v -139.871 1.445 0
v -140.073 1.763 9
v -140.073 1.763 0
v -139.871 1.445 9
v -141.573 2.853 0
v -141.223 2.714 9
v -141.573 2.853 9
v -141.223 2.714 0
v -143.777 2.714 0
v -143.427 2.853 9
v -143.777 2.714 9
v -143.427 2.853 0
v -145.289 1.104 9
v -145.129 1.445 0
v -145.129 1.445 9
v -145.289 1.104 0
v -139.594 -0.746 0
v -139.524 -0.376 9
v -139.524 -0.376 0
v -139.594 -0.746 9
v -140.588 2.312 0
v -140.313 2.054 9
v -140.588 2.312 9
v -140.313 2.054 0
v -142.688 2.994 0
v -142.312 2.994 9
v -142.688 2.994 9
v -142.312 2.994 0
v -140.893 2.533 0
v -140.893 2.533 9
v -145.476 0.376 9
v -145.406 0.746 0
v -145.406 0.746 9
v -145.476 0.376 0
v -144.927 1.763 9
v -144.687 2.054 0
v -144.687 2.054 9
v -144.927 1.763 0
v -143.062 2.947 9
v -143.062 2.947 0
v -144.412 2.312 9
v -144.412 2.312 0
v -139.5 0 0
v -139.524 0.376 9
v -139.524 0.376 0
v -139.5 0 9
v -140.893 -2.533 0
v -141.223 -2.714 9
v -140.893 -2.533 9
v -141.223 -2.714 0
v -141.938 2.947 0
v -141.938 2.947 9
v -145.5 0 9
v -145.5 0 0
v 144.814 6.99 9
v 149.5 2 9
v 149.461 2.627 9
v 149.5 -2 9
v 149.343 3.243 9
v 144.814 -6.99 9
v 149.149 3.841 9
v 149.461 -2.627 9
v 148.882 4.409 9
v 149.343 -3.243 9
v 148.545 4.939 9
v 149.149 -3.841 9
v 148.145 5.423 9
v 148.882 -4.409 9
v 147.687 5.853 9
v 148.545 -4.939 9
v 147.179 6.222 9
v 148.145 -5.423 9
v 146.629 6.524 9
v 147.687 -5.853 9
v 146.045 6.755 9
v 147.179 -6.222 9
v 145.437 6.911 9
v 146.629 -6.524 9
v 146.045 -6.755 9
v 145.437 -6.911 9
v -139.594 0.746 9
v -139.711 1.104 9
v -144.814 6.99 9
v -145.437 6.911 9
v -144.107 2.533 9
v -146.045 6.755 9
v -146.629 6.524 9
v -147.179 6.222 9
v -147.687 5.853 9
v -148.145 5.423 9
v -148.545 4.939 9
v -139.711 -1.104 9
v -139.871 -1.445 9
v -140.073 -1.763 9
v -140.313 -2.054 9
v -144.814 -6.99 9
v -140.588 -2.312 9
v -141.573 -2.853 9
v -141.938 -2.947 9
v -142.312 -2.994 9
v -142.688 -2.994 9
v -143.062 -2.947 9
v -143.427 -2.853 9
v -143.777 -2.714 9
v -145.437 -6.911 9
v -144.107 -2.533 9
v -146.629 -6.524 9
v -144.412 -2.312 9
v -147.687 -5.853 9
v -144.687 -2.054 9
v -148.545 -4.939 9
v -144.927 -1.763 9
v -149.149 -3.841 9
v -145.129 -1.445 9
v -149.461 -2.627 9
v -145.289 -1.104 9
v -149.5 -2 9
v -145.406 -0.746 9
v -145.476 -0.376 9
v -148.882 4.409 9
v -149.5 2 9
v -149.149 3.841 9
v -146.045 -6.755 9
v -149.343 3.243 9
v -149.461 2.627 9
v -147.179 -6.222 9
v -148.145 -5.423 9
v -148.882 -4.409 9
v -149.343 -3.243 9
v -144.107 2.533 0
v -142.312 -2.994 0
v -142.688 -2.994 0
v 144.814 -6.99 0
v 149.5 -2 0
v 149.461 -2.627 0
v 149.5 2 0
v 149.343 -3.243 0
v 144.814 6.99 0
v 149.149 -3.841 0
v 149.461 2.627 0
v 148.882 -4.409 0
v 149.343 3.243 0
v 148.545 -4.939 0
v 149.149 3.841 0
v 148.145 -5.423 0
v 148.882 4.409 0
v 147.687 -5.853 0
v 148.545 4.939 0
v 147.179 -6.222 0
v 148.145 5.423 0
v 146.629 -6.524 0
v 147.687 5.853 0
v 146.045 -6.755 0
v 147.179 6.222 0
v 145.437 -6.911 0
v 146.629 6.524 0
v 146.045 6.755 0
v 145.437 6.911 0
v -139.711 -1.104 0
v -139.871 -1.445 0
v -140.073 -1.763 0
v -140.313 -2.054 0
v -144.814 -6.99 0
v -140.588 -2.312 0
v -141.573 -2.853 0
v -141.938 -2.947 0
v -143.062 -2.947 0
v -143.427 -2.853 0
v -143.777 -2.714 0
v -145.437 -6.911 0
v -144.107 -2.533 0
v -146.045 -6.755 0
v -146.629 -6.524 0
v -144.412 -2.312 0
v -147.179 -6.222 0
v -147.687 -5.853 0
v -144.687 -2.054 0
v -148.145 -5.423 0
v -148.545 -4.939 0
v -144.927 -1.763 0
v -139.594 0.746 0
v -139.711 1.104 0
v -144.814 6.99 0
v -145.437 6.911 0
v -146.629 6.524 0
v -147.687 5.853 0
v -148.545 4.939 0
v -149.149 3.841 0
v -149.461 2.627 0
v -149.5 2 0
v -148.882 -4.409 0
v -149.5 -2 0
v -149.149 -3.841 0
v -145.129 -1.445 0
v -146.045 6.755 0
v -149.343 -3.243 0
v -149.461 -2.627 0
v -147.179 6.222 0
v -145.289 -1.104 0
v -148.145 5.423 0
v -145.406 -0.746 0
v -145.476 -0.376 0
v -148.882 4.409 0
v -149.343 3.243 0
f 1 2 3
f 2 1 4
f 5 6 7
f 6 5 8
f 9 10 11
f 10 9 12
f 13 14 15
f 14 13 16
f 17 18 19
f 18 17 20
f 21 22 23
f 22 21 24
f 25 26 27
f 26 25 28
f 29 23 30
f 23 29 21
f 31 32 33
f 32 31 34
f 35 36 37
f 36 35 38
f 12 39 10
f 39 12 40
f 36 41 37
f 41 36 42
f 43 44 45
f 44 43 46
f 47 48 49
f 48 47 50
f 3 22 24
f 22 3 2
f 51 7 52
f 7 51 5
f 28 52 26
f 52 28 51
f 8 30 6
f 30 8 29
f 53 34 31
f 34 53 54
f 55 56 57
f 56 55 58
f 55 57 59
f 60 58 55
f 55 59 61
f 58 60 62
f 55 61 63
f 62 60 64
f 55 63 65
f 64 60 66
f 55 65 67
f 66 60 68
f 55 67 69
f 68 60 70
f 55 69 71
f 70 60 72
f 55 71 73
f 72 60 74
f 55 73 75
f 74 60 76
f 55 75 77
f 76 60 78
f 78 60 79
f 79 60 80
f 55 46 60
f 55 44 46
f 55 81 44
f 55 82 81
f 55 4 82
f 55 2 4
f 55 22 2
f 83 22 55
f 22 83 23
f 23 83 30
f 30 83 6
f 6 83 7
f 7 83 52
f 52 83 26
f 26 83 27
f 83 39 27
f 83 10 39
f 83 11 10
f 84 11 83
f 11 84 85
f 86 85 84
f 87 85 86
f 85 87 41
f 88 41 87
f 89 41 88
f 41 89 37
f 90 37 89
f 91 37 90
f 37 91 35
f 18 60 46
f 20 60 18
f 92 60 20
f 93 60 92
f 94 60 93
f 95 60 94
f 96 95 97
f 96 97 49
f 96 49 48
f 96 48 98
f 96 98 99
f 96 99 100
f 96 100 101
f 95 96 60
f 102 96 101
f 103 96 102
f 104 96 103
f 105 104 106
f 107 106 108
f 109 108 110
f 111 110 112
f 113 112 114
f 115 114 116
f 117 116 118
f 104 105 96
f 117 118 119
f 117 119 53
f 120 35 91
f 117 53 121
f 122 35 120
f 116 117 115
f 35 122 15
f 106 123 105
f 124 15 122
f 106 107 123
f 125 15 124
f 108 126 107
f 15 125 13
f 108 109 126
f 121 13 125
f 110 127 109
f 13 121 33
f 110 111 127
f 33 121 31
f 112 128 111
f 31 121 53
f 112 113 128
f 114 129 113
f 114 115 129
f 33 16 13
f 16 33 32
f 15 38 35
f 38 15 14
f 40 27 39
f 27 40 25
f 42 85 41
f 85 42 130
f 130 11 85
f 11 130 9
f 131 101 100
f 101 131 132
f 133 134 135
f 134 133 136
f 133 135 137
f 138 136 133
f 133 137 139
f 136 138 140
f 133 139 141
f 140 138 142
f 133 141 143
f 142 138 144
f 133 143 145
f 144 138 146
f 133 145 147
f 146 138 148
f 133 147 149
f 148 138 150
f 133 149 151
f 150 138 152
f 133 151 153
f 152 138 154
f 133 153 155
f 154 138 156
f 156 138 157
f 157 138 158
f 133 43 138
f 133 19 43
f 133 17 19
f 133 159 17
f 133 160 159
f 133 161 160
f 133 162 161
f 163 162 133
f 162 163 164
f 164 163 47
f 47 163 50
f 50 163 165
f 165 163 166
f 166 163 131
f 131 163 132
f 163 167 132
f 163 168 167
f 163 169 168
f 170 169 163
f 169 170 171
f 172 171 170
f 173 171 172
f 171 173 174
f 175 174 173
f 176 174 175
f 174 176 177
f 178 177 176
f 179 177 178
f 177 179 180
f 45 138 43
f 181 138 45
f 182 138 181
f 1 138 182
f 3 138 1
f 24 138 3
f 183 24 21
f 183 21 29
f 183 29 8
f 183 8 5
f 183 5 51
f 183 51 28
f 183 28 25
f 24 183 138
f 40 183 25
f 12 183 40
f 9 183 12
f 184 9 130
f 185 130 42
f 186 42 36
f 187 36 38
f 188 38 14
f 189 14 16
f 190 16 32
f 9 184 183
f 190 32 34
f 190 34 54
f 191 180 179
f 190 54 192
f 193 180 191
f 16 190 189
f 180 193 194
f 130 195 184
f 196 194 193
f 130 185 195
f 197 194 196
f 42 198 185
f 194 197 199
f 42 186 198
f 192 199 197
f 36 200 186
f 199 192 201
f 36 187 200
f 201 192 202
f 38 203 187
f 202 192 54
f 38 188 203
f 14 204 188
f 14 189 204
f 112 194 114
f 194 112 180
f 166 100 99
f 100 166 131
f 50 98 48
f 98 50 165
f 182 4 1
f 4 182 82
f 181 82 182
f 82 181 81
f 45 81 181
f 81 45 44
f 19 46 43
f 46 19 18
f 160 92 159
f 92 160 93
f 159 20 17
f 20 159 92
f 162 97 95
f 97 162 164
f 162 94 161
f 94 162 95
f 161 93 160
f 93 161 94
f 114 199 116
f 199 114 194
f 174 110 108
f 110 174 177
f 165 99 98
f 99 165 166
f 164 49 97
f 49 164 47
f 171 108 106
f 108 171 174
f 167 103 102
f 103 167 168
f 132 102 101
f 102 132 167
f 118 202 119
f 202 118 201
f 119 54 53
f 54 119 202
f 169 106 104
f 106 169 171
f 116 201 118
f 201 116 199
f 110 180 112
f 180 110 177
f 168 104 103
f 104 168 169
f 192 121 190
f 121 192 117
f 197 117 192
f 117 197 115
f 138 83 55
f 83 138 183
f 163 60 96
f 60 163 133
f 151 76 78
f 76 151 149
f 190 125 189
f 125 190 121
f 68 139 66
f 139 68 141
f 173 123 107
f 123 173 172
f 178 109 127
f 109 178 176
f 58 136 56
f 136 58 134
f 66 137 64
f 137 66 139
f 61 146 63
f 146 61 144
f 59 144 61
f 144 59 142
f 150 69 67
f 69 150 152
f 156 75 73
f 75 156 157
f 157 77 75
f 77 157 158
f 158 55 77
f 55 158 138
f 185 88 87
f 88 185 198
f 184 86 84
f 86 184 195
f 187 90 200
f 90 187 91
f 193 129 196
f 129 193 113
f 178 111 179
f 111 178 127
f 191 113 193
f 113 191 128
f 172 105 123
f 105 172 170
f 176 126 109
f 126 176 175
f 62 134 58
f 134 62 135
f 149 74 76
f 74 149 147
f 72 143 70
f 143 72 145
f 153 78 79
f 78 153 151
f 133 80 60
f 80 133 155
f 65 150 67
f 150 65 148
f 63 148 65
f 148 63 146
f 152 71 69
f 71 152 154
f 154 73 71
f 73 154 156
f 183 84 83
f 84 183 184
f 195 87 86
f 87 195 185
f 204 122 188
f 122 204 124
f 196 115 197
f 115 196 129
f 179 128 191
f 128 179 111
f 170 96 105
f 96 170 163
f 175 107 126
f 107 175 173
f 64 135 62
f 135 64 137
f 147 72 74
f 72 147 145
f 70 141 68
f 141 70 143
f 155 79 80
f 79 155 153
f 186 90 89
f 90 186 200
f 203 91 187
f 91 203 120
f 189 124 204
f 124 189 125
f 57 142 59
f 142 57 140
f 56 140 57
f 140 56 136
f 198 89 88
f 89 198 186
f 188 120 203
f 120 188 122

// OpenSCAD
$fn = 50;


difference() {
	union() {
		hull() {
			translate(v = [-144.5000000000, 2.0000000000, 0]) {
				cylinder(h = 9, r = 5);
			}
			translate(v = [144.5000000000, 2.0000000000, 0]) {
				cylinder(h = 9, r = 5);
			}
			translate(v = [-144.5000000000, -2.0000000000, 0]) {
				cylinder(h = 9, r = 5);
			}
			translate(v = [144.5000000000, -2.0000000000, 0]) {
				cylinder(h = 9, r = 5);
			}
		}
	}
	union() {
		translate(v = [-142.5000000000, 0.0000000000, 0]) {
			cylinder(h = 9, r = 3.0000000000);
		}
		translate(v = [-142.5000000000, 0.0000000000, 0]) {
			cylinder(h = 9, r = 1.5000000000);
		}
		translate(v = [-142.5000000000, 0.0000000000, 0]) {
			cylinder(h = 9, r = 1.5000000000);
		}
		translate(v = [-142.5000000000, 0.0000000000, 0]) {
			cylinder(h = 9, r = 1.5000000000);
		}
	}
}
